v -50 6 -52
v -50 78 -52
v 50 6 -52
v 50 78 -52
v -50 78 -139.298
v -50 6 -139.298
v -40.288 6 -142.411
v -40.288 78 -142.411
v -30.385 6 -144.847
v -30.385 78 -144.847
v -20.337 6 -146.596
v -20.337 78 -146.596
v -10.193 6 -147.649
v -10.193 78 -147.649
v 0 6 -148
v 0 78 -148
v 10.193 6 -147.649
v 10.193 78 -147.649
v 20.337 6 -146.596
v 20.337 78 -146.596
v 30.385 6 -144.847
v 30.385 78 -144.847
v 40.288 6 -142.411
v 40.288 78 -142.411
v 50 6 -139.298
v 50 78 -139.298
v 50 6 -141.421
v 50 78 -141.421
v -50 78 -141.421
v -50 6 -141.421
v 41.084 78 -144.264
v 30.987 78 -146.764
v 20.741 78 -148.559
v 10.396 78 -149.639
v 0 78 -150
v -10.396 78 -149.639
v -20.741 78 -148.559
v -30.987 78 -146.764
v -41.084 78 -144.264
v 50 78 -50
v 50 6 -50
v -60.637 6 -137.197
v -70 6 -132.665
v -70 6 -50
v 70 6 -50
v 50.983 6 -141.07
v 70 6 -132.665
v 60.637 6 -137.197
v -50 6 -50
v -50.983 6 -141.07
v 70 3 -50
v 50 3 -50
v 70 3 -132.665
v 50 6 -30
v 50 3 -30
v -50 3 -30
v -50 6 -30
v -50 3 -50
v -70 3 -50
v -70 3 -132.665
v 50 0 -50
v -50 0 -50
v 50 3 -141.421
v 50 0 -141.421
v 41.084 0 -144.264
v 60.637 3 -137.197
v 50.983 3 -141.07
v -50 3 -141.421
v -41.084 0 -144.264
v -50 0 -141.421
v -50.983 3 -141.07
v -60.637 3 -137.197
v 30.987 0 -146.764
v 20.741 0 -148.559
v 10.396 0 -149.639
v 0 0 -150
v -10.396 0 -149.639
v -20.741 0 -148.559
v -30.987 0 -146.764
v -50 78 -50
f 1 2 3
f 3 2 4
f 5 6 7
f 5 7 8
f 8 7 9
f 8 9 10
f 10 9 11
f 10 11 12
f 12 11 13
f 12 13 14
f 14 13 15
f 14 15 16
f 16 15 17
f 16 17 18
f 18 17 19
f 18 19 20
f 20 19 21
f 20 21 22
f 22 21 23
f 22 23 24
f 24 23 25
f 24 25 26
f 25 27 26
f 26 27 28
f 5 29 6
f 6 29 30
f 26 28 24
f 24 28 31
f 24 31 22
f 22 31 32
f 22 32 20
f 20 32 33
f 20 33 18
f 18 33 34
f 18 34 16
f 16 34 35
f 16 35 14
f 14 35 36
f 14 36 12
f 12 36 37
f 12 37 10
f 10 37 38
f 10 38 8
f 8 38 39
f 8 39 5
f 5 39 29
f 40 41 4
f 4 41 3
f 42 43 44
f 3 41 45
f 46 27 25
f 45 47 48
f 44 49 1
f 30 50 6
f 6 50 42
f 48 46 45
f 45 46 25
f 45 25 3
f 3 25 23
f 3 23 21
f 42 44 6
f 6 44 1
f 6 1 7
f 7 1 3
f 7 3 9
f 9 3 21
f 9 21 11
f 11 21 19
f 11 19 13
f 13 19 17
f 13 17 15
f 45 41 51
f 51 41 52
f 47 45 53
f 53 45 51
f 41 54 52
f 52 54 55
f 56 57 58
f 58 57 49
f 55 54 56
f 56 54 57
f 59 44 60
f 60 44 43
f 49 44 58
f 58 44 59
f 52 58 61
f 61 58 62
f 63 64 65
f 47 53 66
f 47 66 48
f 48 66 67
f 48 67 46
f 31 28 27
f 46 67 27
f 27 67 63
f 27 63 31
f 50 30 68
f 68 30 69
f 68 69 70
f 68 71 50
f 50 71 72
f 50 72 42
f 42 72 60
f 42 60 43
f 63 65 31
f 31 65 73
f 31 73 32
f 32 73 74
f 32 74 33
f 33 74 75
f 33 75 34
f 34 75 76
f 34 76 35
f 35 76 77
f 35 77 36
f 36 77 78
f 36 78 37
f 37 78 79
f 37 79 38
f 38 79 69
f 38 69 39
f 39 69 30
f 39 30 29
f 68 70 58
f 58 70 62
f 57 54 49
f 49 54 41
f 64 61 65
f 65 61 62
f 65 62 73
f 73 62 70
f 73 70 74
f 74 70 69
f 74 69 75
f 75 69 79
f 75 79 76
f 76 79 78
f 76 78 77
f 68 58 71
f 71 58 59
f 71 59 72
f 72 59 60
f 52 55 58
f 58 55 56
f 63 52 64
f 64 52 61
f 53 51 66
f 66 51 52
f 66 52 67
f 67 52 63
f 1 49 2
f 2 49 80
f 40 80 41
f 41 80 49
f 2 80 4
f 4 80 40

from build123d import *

# Parameters (mm, degrees)
SKETCH1_W           = 100
SKETCH1_H           = 20
BOSS_EXTRUDE1_DEPTH = 6
SKETCH2_W           = 100
SKETCH2_H           = 20
CUT_EXTRUDE3_DEPTH  = 3
BOSS_EXTRUDE2_DEPTH = 72
SHELL1_START        = 2
SHELL1_DEPTH        = 74
SHELL1_START_2      = 5
SHELL1_2_DEPTH      = 71
CUT_EXTRUDE4_START  = -72
CUT_EXTRUDE4_DEPTH  = 72
BOSS_EXTRUDE3_DEPTH = 6


# Read off the part's stored shape, not the designer's step: Shell1
with BuildPart() as part:
    # Sketch1 → Boss-Extrude1 (new body)
    with BuildSketch(Plane(origin=(0, 0, 0), x_dir=(1, 0, 0), z_dir=(0, 1, 0))):
        with BuildLine():
            Line((-50, 141.421356237), (-50, 50))
            Line((-50, 50), (50, 50))
            Line((50, 50), (50, 141.421356237))
            ThreePointArc((50, 141.421356237), (0, 150), (-50, 141.421356237))
        make_face()
        with BuildLine():
            Line((-70, 50), (-50, 50))
            Line((-50, 50), (-50, 141.421356237))
            ThreePointArc((-50, 141.421356237), (-60.159525267, 137.407538074), (-70, 132.664991614))
            Line((-70, 132.664991614), (-70, 50))
        make_face()
        with Locations((0, 40)):
            Rectangle(SKETCH1_W, SKETCH1_H)
        with BuildLine():
            Line((50, 141.421356237), (50, 50))
            Line((50, 50), (70, 50))
            Line((70, 50), (70, 132.664991614))
            ThreePointArc((70, 132.664991614), (60.159525267, 137.407538074), (50, 141.421356237))
        make_face()
    extrude(amount=BOSS_EXTRUDE1_DEPTH)

    # Sketch2 → Cut-Extrude3 (cut)
    with BuildSketch(Plane.XZ):
        with BuildLine():
            ThreePointArc((-70, -132.664991614), (-60.159525267, -137.407538074), (-50, -141.421356237))
            Line((-50, -141.421356237), (-50, -50))
            Line((-50, -50), (-70, -50))
            Line((-70, -50), (-70, -132.664991614))
        make_face()
        with Locations((0, -40)):
            Rectangle(SKETCH2_W, SKETCH2_H)
        with BuildLine():
            Line((50, -50), (50, -141.421356237))
            ThreePointArc((50, -141.421356237), (60.159525267, -137.407538074), (70, -132.664991614))
            Line((70, -132.664991614), (70, -50))
            Line((70, -50), (50, -50))
        make_face()
    extrude(amount=-CUT_EXTRUDE3_DEPTH, mode=Mode.SUBTRACT)

    # Sketch3 → Boss-Extrude2 (add)
    with BuildSketch(Plane(origin=(0, 6, 0), x_dir=(-1, 0, 0), z_dir=(0, 1, 0))):
        with BuildLine():
            Line((50, -50), (-50, -50))
            Line((-50, -50), (-50, -141.421356237))
            ThreePointArc((-50, -141.421356237), (0, -150), (50, -141.421356237))
            Line((50, -141.421356237), (50, -50))
        make_face()
    extrude(amount=BOSS_EXTRUDE2_DEPTH)

    # Shell1 outline → Shell1 (cut)
    with BuildSketch(Plane(origin=(0, 0, 0), x_dir=(1, 0, 0), z_dir=(0, 1, 0)).offset(SHELL1_START)):
        with BuildLine():
            Line((48, 52), (48, 140))
            ThreePointArc((48, 140), (0, 148), (-48, 140))
            Line((-48, 140), (-48, 52))
            Line((-48, 52), (48, 52))
        make_face()
    extrude(amount=SHELL1_DEPTH, mode=Mode.SUBTRACT)

    # Shell1 2 outline → Shell1 2 (cut)
    with BuildSketch(Plane(origin=(0, 0, 0), x_dir=(1, 0, 0), z_dir=(0, 1, 0)).offset(SHELL1_START_2)):
        with BuildLine():
            Line((50, 52), (50, 139.298241195))
            ThreePointArc((50, 139.298241195), (49.001256273, 139.652700954), (48, 140))
            Line((48, 140), (48, 52))
            Line((48, 52), (50, 52))
        make_face()
    extrude(amount=SHELL1_2_DEPTH, mode=Mode.SUBTRACT)

    # Sketch4 → Cut-Extrude4 (cut)
    with BuildSketch(Plane(origin=(0, 78, 0), x_dir=(-1, 0, 0), z_dir=(0, 1, 0)).offset(CUT_EXTRUDE4_START)):
        with BuildLine():
            Line((50, -52), (-50, -52))
            Line((-50, -52), (-50, -139.298241195))
            ThreePointArc((-50, -139.298241195), (0, -148), (50, -139.298241195))
            Line((50, -139.298241195), (50, -52))
        make_face()
    extrude(amount=CUT_EXTRUDE4_DEPTH, mode=Mode.SUBTRACT)

    # Sketch5 → Boss-Extrude3 (add)
    with BuildSketch(Plane.XZ):
        with BuildLine():
            Line((-50, -141.421356237), (-50, -50))
            Line((-50, -50), (50, -50))
            Line((50, -50), (50, -141.421356237))
            ThreePointArc((50, -141.421356237), (0, -150), (-50, -141.421356237))
        make_face()
    extrude(amount=-BOSS_EXTRUDE3_DEPTH)


solid = part.part
